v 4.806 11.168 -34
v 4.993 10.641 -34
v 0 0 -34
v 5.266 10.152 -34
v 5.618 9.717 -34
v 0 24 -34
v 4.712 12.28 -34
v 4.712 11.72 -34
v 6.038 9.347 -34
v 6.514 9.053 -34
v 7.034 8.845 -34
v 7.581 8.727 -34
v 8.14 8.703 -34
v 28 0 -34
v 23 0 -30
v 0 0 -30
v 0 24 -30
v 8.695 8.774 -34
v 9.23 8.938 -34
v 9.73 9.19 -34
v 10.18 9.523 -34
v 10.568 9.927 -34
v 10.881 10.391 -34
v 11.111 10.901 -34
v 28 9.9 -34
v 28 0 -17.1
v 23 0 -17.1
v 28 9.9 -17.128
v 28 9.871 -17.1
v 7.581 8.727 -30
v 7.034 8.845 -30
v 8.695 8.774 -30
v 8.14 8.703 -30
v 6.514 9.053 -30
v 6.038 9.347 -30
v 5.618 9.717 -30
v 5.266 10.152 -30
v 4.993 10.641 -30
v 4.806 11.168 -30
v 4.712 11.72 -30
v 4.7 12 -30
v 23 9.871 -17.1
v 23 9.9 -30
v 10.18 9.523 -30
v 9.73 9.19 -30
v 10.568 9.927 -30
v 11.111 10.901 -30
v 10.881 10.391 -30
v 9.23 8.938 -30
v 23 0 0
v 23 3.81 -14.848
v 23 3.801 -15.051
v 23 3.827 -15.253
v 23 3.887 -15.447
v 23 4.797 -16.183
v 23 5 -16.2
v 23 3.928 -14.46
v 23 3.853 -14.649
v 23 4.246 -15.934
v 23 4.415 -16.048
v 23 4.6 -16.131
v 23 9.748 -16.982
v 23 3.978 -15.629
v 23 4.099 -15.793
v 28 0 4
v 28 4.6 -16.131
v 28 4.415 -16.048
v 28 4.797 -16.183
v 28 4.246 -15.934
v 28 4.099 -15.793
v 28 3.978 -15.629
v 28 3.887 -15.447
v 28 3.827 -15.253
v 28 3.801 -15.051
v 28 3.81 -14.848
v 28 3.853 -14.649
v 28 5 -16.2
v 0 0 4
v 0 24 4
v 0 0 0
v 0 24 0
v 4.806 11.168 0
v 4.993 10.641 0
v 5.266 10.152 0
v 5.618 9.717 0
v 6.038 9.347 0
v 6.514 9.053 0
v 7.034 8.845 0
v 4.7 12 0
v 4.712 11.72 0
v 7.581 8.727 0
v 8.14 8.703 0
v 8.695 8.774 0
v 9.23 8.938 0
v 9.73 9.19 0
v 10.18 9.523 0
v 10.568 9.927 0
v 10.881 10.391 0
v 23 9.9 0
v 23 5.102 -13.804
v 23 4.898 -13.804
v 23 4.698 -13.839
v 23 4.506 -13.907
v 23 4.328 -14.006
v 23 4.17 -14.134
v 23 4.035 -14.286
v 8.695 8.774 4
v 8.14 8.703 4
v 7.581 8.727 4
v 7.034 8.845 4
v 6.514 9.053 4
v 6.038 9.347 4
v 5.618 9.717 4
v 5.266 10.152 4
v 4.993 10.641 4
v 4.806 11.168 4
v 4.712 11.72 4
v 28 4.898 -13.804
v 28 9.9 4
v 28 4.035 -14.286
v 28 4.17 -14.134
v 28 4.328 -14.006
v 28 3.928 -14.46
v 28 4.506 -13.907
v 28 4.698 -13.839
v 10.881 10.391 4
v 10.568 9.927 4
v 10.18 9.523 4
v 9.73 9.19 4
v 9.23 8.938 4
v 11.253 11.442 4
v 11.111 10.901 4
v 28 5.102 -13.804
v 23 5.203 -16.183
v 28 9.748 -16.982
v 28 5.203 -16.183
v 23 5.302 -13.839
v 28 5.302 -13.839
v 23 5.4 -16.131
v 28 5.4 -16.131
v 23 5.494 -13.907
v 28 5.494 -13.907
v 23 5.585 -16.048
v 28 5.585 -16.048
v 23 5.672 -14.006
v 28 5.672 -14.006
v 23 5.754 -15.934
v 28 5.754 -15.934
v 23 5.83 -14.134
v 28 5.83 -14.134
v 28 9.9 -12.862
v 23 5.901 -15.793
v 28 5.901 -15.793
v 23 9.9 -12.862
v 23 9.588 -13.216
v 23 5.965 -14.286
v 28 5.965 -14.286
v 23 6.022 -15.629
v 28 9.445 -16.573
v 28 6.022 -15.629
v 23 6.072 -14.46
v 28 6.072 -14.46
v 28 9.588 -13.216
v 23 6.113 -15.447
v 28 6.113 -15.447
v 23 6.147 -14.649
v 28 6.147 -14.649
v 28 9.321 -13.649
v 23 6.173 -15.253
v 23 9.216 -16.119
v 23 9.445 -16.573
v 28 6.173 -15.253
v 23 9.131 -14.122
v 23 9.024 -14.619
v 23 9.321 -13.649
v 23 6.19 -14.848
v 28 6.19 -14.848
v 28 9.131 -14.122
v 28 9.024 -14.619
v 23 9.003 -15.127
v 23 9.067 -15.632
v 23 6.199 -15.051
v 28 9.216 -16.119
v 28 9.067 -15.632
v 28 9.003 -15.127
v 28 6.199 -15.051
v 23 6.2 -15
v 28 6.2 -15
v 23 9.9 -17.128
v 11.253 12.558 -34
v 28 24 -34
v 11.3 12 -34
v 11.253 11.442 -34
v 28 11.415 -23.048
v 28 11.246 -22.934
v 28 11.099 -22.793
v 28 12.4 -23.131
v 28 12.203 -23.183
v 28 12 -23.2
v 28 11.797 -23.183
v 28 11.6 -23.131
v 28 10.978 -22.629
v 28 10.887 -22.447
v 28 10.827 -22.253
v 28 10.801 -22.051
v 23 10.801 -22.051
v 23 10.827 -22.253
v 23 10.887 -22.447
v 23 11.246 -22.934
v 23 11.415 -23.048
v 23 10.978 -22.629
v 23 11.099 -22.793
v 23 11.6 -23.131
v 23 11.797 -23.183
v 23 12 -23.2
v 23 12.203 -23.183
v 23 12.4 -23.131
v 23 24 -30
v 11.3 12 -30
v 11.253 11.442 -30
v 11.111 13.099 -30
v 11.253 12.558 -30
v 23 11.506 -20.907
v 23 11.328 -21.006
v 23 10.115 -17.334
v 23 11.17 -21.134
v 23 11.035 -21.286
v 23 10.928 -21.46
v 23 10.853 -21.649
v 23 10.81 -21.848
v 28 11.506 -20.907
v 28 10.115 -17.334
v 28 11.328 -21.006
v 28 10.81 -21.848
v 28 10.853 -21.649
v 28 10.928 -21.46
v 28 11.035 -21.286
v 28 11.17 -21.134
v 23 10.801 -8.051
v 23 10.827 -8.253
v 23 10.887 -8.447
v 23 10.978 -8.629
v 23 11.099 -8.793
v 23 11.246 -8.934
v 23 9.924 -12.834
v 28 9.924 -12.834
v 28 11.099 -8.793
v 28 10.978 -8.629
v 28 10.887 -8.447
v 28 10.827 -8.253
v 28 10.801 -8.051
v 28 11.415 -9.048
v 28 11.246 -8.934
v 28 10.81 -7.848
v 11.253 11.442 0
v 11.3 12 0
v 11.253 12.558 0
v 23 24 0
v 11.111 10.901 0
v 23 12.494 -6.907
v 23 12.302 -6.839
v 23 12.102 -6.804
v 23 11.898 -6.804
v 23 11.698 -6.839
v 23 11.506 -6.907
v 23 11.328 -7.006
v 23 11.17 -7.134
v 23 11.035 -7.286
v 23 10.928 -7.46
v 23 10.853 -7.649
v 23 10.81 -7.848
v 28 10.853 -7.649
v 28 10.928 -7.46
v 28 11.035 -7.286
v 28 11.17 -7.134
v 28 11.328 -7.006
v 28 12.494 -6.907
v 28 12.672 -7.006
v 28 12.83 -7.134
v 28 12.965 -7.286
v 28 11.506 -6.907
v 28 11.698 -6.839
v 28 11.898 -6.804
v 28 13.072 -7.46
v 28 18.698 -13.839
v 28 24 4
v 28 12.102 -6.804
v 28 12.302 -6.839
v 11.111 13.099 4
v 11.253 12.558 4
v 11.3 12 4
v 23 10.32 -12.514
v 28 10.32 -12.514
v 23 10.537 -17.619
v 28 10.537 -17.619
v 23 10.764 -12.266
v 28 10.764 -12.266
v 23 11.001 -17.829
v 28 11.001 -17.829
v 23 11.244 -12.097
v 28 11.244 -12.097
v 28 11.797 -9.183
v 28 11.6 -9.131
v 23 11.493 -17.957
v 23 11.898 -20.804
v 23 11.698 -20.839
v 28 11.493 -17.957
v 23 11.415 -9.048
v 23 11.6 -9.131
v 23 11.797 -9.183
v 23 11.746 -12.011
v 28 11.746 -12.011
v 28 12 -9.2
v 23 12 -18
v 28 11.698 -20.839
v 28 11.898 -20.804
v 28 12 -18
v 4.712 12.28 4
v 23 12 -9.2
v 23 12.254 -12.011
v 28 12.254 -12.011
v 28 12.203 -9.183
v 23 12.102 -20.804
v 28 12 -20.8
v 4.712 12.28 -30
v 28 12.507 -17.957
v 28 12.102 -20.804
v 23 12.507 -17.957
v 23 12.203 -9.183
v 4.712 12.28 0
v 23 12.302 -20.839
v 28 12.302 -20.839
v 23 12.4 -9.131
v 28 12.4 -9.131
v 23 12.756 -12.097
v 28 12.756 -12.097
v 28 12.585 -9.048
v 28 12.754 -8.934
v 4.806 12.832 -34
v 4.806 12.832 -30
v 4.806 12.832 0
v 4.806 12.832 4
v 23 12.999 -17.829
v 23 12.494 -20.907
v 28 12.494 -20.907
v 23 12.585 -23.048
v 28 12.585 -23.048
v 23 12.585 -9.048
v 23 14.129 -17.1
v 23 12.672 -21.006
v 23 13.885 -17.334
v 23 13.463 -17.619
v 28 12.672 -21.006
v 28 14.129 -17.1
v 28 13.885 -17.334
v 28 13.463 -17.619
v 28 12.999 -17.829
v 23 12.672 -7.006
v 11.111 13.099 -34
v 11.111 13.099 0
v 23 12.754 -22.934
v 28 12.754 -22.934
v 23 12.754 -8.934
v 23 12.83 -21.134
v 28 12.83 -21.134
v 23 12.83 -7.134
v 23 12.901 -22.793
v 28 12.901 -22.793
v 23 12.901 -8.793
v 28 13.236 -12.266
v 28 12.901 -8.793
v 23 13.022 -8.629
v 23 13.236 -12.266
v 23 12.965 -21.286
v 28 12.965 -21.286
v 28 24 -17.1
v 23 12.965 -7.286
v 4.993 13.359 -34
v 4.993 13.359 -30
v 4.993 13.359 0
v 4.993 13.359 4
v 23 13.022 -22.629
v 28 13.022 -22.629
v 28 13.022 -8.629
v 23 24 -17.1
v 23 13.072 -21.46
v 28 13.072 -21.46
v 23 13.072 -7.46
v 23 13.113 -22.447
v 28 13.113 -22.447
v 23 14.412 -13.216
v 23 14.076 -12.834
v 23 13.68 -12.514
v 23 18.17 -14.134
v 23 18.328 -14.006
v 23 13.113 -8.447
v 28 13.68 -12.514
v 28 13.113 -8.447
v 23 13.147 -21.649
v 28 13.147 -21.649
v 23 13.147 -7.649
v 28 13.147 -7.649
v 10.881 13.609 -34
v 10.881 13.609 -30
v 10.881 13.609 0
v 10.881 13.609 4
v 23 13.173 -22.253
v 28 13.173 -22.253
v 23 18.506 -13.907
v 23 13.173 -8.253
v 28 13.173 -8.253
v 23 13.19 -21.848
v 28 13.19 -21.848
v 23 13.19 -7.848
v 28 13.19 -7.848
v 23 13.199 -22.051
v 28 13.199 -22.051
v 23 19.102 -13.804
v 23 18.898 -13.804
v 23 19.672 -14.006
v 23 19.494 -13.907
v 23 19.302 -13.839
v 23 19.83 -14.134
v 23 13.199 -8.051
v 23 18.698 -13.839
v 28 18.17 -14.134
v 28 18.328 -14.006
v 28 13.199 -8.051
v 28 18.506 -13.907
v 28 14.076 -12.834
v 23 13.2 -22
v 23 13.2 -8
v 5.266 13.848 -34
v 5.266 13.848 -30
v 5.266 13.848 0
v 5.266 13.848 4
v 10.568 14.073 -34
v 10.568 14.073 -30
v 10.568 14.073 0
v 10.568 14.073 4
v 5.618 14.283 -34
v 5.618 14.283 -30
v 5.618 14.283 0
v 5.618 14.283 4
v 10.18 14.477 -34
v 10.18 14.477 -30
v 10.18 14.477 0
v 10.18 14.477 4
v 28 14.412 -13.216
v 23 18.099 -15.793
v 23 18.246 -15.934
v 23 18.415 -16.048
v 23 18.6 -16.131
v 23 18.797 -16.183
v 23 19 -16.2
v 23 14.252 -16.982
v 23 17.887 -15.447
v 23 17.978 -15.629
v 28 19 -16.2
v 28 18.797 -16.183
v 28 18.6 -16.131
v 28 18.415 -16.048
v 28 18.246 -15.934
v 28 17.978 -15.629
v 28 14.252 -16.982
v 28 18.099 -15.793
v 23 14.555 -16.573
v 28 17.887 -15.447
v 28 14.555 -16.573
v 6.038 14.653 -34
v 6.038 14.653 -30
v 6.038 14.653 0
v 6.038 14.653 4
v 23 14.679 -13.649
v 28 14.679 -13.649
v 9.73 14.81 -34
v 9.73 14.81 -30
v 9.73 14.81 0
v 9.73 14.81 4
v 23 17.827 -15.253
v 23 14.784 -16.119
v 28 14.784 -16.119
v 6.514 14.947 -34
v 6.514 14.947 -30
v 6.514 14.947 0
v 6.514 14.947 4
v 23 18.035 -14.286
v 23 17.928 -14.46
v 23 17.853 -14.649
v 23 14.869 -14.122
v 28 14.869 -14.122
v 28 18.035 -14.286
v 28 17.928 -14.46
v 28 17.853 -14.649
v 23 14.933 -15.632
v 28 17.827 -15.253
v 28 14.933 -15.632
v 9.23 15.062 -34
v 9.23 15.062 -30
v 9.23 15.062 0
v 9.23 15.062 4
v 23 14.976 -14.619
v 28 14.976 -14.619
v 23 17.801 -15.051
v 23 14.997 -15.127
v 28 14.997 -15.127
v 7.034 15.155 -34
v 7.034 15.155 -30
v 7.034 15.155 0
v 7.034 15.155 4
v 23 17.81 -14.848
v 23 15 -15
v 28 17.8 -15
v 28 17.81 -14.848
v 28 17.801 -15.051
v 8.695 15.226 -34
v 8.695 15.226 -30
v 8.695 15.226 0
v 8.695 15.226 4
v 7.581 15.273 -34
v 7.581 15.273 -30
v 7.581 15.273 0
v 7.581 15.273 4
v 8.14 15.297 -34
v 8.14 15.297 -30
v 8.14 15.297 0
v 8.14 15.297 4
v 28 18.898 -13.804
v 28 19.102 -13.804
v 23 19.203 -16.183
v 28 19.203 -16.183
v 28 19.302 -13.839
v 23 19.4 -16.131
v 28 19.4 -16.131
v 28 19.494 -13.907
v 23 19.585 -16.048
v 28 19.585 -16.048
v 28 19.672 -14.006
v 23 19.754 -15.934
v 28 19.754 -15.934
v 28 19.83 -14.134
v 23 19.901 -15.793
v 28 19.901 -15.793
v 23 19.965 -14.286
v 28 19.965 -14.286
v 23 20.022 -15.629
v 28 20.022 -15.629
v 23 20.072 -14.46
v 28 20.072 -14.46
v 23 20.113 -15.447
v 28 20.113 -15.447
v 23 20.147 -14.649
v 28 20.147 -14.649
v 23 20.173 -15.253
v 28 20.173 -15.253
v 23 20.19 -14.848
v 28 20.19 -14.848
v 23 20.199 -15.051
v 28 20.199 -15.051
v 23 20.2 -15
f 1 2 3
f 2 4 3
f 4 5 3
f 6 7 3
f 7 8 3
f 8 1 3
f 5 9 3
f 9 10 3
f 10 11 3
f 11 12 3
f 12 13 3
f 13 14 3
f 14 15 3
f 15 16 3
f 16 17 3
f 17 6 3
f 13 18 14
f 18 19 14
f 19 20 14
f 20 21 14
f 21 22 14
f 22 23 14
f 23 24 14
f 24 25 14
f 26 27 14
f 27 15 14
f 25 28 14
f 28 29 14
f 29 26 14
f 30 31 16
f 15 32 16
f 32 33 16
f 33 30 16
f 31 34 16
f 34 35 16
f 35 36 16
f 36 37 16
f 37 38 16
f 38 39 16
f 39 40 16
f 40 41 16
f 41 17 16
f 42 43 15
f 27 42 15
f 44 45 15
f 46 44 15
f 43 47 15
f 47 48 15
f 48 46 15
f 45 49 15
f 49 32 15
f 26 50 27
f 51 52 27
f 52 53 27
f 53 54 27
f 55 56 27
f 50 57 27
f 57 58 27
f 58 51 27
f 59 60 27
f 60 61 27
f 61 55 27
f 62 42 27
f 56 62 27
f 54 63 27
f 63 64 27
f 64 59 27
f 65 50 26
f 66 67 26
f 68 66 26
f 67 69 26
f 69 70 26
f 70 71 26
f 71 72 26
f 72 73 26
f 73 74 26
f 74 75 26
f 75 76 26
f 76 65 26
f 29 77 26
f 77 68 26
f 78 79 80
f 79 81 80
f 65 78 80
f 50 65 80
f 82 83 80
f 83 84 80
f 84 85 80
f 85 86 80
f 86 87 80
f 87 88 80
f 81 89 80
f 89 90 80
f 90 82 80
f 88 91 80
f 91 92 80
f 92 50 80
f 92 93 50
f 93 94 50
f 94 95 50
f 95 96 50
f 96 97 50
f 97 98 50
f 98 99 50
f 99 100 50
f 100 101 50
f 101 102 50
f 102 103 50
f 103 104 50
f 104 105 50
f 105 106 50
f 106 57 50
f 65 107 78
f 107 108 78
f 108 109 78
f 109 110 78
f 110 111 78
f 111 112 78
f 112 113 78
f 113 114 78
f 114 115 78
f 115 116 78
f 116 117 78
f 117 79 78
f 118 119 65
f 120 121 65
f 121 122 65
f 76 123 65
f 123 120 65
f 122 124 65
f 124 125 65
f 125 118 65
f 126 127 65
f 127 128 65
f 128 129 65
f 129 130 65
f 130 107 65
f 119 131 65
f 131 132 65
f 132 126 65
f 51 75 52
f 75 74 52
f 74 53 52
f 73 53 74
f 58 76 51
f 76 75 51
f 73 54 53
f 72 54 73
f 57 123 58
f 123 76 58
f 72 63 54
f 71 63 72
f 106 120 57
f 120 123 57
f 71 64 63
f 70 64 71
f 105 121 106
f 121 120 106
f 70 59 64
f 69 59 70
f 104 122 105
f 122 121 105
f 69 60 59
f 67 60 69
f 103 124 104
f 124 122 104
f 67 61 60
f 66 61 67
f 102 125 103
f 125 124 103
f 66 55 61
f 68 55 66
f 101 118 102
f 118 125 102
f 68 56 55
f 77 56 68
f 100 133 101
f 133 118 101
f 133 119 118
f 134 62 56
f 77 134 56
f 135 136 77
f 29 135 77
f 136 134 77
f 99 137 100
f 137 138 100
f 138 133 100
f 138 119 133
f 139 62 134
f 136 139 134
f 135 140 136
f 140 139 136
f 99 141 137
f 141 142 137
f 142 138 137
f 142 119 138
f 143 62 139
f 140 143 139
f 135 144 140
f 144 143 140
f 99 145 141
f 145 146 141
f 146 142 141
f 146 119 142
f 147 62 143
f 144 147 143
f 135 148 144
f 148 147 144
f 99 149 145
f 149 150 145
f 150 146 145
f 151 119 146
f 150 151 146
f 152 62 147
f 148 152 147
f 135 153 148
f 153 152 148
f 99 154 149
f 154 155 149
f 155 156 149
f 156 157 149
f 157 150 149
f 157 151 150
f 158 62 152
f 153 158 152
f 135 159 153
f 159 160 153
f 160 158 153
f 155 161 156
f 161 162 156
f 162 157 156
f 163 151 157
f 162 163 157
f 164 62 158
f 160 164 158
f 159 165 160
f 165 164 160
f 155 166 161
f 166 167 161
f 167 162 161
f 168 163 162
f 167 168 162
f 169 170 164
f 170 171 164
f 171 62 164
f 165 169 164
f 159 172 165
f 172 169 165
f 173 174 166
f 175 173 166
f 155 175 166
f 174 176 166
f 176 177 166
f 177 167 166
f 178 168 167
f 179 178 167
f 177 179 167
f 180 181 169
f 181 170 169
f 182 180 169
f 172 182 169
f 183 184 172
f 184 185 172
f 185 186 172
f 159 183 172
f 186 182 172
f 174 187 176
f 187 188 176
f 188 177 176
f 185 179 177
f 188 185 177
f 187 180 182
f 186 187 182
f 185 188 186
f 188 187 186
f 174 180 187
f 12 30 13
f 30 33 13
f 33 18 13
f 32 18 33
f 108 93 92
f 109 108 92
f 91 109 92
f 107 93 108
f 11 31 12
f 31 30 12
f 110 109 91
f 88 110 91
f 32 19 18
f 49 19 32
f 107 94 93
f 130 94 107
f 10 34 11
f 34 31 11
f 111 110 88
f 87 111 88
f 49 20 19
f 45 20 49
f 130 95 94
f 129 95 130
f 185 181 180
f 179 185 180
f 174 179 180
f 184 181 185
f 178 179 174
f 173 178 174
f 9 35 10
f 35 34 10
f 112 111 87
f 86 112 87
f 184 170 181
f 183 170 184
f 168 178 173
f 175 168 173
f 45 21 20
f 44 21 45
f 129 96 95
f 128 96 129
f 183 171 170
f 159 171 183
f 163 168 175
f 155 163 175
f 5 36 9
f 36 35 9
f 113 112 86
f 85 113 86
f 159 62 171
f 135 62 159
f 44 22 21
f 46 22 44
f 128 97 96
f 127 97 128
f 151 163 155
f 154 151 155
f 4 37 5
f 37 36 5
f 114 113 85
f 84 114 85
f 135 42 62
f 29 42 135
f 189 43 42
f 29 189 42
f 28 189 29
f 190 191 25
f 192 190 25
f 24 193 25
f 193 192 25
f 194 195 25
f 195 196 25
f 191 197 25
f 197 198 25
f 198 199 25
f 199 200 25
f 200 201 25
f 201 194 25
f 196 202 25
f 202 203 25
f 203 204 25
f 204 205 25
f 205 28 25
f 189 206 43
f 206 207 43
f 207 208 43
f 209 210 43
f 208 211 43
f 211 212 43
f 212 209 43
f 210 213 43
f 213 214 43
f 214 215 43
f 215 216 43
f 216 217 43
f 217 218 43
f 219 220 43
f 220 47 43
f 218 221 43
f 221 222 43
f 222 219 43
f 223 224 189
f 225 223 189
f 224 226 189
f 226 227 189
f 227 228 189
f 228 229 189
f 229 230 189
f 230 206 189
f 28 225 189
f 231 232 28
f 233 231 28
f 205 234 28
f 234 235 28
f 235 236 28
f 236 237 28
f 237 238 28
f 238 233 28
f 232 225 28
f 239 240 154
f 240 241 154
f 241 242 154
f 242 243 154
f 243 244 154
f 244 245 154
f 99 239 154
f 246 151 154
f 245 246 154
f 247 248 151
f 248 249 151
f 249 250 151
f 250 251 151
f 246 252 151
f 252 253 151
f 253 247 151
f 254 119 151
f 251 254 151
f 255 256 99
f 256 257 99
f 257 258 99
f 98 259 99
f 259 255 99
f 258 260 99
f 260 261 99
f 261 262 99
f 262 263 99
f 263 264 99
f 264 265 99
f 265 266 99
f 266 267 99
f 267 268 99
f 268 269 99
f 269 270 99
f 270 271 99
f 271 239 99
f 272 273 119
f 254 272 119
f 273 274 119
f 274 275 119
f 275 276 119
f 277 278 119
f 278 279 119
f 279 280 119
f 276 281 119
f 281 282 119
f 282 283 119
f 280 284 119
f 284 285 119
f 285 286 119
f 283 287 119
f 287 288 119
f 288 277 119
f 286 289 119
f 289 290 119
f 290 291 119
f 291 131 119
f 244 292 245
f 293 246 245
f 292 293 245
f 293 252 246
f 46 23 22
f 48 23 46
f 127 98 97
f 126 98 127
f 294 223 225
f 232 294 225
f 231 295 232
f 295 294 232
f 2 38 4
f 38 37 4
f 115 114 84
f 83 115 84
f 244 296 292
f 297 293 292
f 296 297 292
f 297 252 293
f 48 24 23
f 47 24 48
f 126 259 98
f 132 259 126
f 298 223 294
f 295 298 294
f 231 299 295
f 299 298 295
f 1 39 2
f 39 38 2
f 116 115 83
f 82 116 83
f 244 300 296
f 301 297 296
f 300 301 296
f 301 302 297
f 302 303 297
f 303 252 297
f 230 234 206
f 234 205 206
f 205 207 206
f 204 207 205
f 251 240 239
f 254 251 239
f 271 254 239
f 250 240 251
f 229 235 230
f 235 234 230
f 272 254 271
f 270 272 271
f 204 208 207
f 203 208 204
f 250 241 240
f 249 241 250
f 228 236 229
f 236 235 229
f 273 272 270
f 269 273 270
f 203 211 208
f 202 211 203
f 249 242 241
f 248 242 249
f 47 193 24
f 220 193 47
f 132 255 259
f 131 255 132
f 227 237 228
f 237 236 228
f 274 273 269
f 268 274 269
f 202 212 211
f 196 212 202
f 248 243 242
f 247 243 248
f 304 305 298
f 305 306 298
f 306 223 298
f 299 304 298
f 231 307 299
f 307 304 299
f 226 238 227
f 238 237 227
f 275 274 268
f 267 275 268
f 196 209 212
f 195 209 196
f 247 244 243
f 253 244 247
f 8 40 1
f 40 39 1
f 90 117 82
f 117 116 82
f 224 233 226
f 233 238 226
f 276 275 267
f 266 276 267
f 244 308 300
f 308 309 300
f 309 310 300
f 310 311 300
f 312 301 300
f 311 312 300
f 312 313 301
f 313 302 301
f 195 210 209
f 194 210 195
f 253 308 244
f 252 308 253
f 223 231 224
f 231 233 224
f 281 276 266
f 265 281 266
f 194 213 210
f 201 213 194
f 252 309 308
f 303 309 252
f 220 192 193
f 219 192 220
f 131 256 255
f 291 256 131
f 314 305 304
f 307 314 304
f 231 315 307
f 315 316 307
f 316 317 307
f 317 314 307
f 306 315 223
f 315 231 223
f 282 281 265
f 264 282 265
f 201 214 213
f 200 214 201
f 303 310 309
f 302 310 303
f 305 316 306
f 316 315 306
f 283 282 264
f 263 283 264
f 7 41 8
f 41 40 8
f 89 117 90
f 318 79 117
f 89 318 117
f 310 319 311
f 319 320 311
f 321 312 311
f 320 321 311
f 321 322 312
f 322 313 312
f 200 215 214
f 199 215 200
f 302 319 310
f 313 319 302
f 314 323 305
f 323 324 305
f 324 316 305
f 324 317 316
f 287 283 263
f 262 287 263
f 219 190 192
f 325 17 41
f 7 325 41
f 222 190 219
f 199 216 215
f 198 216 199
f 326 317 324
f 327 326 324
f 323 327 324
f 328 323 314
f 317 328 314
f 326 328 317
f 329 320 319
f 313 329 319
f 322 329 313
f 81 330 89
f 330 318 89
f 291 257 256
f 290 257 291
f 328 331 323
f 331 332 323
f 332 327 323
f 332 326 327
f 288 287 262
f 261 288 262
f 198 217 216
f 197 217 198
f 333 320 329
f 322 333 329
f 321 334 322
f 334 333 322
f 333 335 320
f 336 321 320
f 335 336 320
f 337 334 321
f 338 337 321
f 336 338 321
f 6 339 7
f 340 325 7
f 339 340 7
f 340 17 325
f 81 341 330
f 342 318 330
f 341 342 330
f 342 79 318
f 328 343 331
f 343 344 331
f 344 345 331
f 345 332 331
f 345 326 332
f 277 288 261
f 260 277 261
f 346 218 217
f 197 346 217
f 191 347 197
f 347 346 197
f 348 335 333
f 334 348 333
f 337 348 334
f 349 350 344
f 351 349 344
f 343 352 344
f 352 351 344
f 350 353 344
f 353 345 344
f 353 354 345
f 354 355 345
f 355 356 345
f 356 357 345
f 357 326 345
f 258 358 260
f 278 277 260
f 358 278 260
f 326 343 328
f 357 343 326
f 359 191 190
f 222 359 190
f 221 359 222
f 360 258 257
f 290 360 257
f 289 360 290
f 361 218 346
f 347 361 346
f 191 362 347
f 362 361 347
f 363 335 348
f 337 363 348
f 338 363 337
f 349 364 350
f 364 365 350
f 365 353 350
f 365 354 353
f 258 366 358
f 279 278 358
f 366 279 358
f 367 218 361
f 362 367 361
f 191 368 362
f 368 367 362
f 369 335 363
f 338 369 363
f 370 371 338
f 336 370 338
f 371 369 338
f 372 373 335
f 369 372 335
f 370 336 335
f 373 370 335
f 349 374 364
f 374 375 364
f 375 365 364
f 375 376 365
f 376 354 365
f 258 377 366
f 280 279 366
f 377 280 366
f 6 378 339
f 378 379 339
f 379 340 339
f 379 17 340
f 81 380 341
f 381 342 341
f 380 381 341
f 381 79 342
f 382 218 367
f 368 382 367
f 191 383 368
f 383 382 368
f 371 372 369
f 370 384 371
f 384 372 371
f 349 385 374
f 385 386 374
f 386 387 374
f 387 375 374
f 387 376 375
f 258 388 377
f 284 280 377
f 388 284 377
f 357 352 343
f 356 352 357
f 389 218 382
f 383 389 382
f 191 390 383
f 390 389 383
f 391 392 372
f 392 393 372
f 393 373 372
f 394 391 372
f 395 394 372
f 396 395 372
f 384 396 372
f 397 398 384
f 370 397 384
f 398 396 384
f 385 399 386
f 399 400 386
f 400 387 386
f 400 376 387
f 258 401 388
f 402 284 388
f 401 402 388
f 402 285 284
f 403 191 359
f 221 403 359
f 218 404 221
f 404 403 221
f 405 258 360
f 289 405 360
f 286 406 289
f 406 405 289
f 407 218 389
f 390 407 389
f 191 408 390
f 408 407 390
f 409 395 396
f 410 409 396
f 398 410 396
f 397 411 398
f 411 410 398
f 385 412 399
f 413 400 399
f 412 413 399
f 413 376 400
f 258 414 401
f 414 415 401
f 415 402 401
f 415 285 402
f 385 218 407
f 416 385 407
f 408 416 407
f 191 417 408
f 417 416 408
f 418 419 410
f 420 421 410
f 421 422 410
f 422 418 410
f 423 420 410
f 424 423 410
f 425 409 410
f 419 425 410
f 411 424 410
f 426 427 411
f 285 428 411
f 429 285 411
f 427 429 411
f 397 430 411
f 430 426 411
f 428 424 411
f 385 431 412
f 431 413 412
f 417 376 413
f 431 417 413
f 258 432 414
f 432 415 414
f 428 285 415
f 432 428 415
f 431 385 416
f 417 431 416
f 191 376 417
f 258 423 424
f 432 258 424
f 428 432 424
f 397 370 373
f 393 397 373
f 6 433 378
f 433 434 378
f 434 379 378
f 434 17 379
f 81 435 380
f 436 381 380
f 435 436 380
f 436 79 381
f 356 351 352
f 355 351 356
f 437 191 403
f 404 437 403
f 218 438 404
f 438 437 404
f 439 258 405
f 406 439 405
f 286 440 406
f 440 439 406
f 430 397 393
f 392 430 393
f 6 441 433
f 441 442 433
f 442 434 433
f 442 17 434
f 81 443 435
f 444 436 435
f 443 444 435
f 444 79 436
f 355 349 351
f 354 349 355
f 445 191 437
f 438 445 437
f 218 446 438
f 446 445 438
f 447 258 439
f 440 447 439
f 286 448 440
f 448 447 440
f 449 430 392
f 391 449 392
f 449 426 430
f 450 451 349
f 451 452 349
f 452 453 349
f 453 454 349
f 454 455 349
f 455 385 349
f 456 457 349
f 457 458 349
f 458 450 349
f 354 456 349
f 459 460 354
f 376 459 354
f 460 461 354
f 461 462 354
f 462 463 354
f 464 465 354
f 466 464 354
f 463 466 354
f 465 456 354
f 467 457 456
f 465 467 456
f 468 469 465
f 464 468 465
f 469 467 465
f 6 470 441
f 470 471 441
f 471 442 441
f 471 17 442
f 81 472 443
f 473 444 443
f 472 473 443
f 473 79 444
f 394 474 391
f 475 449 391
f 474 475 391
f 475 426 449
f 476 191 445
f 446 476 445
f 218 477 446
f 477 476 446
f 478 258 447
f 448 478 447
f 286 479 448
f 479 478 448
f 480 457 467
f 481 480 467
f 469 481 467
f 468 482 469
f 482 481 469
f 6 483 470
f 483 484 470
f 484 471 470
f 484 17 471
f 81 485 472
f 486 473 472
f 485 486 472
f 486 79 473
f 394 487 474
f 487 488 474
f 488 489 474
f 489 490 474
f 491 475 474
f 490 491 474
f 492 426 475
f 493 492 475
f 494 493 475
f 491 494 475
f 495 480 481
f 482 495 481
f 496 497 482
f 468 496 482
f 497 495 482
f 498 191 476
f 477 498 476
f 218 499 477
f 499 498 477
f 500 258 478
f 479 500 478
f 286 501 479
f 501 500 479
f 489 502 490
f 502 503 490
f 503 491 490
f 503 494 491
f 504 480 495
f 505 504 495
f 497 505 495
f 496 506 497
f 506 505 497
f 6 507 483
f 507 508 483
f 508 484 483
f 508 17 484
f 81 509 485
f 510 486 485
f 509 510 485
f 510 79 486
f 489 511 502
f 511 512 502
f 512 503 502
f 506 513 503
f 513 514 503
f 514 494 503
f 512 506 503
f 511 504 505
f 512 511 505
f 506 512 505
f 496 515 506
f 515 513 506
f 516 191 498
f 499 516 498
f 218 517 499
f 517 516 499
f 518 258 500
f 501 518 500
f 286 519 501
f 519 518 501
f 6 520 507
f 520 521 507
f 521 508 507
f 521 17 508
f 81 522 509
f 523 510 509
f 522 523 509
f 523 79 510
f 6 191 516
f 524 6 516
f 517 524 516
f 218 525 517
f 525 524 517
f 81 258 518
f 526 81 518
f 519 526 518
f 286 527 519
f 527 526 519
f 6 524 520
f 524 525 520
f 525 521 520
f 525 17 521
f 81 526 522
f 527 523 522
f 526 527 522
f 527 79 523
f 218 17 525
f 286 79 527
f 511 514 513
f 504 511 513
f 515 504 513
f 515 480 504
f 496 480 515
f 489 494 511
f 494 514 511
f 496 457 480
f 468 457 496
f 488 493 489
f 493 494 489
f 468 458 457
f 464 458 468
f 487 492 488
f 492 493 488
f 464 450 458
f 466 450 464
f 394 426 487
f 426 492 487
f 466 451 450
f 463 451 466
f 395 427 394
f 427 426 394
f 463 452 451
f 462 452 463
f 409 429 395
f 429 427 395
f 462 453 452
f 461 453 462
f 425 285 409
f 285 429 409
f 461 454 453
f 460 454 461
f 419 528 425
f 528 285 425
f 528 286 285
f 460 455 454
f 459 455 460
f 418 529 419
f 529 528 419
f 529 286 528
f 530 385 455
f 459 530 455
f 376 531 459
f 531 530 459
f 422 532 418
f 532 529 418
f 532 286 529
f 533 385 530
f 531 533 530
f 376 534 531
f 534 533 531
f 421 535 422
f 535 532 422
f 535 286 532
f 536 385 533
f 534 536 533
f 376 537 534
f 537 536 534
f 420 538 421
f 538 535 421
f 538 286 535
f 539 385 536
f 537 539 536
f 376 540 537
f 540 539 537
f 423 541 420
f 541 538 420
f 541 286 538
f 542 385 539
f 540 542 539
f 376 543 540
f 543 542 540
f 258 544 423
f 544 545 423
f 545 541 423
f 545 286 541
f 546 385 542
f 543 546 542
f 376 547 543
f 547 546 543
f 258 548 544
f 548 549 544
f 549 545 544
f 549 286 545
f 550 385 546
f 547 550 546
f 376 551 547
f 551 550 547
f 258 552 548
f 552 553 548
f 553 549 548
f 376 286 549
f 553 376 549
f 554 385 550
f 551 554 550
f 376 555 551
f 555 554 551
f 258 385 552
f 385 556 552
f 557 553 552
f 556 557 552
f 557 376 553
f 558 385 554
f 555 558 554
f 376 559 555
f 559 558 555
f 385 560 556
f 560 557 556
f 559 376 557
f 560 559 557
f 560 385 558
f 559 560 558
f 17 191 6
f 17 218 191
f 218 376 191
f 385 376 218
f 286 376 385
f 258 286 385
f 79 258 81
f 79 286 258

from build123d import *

# Parameters (mm, degrees)
SKETCH1_W            = 28
SKETCH1_H            = 24
BOSS_EXTRUDE1_DEPTH  = 4
SKETCH3_W            = 5
SKETCH3_H            = 24
BOSS_EXTRUDE2_DEPTH  = 30
LPATTERN1_COUNT      = 2
LPATTERN1_PITCH      = 34
M6_CLEARANCE_HOLE1_D = 6.6
CUT_EXTRUDE1_REACH   = 52.16
SKETCH8_R            = 3
SKETCH8_R_2          = 1.2
CIRPATTERN1_COUNT    = 4


with BuildPart() as part:
    # Sketch1 → Boss-Extrude1 (new body)
    with BuildSketch(Plane.XY):
        with Locations((14, 12)):
            Rectangle(SKETCH1_W, SKETCH1_H)
    boss_extrude1 = extrude(amount=BOSS_EXTRUDE1_DEPTH)

    # Sketch3 → Boss-Extrude2 (add)
    with BuildSketch(Plane(origin=(0, 0, 0), x_dir=(-1, 0, 0), z_dir=(0, 0, -1))):
        with Locations((-25.5, 12)):
            Rectangle(SKETCH3_W, SKETCH3_H)
    extrude(amount=BOSS_EXTRUDE2_DEPTH)

    # LPattern1: Boss-Extrude1 ×2
    with Locations(*[(0, 0, -i * LPATTERN1_PITCH) for i in range(1, LPATTERN1_COUNT)]):
        add(boss_extrude1)

    # M6 Clearance Hole1 (through all)
    with Locations(Plane.XY.offset(4)):
        with Locations((8, 12)):
            Hole(M6_CLEARANCE_HOLE1_D / 2)

    # Sketch8 → Cut-Extrude1 (cut, up to next)
    with BuildSketch(Plane(origin=(28, 0, 0), x_dir=(0, 0, -1), z_dir=(1, 0, 0)), mode=Mode.PRIVATE) as cut_extrude1_sk1:
        with Locations((15, 12)):
            Circle(SKETCH8_R)
    cut_extrude1_tool1 = extrude(cut_extrude1_sk1.sketch, amount=-CUT_EXTRUDE1_REACH, mode=Mode.PRIVATE) & part.part
    # Sketch8 → Cut-Extrude1 (cut, up to next)
    with BuildSketch(Plane(origin=(28, 0, 0), x_dir=(0, 0, -1), z_dir=(1, 0, 0)), mode=Mode.PRIVATE) as cut_extrude1_sk2:
        with Locations((8, 12)):
            Circle(SKETCH8_R_2)
    cut_extrude1_tool2 = extrude(cut_extrude1_sk2.sketch, amount=-CUT_EXTRUDE1_REACH, mode=Mode.PRIVATE) & part.part
    cut_extrude1_1 = cut_extrude1_tool1.solids().sort_by_distance((28, 12, -15))[0]
    add(cut_extrude1_1, mode=Mode.SUBTRACT)
    cut_extrude1_2 = cut_extrude1_tool2.solids().sort_by_distance((28, 12, -8))[0]
    add(cut_extrude1_2, mode=Mode.SUBTRACT)
    cut_extrude1 = cut_extrude1_1 + cut_extrude1_2  # Cut-Extrude1 as one shape, for the pattern or mirror that repeats it

    # CirPattern1: Cut-Extrude1 ×4 about axis
    cirpattern1_axis = Axis((0, 12, -15), (1, 0, 0))
    for i in range(1, CIRPATTERN1_COUNT):
        add(cut_extrude1.rotate(cirpattern1_axis, i * 360 / CIRPATTERN1_COUNT), mode=Mode.SUBTRACT)


solid = part.part
